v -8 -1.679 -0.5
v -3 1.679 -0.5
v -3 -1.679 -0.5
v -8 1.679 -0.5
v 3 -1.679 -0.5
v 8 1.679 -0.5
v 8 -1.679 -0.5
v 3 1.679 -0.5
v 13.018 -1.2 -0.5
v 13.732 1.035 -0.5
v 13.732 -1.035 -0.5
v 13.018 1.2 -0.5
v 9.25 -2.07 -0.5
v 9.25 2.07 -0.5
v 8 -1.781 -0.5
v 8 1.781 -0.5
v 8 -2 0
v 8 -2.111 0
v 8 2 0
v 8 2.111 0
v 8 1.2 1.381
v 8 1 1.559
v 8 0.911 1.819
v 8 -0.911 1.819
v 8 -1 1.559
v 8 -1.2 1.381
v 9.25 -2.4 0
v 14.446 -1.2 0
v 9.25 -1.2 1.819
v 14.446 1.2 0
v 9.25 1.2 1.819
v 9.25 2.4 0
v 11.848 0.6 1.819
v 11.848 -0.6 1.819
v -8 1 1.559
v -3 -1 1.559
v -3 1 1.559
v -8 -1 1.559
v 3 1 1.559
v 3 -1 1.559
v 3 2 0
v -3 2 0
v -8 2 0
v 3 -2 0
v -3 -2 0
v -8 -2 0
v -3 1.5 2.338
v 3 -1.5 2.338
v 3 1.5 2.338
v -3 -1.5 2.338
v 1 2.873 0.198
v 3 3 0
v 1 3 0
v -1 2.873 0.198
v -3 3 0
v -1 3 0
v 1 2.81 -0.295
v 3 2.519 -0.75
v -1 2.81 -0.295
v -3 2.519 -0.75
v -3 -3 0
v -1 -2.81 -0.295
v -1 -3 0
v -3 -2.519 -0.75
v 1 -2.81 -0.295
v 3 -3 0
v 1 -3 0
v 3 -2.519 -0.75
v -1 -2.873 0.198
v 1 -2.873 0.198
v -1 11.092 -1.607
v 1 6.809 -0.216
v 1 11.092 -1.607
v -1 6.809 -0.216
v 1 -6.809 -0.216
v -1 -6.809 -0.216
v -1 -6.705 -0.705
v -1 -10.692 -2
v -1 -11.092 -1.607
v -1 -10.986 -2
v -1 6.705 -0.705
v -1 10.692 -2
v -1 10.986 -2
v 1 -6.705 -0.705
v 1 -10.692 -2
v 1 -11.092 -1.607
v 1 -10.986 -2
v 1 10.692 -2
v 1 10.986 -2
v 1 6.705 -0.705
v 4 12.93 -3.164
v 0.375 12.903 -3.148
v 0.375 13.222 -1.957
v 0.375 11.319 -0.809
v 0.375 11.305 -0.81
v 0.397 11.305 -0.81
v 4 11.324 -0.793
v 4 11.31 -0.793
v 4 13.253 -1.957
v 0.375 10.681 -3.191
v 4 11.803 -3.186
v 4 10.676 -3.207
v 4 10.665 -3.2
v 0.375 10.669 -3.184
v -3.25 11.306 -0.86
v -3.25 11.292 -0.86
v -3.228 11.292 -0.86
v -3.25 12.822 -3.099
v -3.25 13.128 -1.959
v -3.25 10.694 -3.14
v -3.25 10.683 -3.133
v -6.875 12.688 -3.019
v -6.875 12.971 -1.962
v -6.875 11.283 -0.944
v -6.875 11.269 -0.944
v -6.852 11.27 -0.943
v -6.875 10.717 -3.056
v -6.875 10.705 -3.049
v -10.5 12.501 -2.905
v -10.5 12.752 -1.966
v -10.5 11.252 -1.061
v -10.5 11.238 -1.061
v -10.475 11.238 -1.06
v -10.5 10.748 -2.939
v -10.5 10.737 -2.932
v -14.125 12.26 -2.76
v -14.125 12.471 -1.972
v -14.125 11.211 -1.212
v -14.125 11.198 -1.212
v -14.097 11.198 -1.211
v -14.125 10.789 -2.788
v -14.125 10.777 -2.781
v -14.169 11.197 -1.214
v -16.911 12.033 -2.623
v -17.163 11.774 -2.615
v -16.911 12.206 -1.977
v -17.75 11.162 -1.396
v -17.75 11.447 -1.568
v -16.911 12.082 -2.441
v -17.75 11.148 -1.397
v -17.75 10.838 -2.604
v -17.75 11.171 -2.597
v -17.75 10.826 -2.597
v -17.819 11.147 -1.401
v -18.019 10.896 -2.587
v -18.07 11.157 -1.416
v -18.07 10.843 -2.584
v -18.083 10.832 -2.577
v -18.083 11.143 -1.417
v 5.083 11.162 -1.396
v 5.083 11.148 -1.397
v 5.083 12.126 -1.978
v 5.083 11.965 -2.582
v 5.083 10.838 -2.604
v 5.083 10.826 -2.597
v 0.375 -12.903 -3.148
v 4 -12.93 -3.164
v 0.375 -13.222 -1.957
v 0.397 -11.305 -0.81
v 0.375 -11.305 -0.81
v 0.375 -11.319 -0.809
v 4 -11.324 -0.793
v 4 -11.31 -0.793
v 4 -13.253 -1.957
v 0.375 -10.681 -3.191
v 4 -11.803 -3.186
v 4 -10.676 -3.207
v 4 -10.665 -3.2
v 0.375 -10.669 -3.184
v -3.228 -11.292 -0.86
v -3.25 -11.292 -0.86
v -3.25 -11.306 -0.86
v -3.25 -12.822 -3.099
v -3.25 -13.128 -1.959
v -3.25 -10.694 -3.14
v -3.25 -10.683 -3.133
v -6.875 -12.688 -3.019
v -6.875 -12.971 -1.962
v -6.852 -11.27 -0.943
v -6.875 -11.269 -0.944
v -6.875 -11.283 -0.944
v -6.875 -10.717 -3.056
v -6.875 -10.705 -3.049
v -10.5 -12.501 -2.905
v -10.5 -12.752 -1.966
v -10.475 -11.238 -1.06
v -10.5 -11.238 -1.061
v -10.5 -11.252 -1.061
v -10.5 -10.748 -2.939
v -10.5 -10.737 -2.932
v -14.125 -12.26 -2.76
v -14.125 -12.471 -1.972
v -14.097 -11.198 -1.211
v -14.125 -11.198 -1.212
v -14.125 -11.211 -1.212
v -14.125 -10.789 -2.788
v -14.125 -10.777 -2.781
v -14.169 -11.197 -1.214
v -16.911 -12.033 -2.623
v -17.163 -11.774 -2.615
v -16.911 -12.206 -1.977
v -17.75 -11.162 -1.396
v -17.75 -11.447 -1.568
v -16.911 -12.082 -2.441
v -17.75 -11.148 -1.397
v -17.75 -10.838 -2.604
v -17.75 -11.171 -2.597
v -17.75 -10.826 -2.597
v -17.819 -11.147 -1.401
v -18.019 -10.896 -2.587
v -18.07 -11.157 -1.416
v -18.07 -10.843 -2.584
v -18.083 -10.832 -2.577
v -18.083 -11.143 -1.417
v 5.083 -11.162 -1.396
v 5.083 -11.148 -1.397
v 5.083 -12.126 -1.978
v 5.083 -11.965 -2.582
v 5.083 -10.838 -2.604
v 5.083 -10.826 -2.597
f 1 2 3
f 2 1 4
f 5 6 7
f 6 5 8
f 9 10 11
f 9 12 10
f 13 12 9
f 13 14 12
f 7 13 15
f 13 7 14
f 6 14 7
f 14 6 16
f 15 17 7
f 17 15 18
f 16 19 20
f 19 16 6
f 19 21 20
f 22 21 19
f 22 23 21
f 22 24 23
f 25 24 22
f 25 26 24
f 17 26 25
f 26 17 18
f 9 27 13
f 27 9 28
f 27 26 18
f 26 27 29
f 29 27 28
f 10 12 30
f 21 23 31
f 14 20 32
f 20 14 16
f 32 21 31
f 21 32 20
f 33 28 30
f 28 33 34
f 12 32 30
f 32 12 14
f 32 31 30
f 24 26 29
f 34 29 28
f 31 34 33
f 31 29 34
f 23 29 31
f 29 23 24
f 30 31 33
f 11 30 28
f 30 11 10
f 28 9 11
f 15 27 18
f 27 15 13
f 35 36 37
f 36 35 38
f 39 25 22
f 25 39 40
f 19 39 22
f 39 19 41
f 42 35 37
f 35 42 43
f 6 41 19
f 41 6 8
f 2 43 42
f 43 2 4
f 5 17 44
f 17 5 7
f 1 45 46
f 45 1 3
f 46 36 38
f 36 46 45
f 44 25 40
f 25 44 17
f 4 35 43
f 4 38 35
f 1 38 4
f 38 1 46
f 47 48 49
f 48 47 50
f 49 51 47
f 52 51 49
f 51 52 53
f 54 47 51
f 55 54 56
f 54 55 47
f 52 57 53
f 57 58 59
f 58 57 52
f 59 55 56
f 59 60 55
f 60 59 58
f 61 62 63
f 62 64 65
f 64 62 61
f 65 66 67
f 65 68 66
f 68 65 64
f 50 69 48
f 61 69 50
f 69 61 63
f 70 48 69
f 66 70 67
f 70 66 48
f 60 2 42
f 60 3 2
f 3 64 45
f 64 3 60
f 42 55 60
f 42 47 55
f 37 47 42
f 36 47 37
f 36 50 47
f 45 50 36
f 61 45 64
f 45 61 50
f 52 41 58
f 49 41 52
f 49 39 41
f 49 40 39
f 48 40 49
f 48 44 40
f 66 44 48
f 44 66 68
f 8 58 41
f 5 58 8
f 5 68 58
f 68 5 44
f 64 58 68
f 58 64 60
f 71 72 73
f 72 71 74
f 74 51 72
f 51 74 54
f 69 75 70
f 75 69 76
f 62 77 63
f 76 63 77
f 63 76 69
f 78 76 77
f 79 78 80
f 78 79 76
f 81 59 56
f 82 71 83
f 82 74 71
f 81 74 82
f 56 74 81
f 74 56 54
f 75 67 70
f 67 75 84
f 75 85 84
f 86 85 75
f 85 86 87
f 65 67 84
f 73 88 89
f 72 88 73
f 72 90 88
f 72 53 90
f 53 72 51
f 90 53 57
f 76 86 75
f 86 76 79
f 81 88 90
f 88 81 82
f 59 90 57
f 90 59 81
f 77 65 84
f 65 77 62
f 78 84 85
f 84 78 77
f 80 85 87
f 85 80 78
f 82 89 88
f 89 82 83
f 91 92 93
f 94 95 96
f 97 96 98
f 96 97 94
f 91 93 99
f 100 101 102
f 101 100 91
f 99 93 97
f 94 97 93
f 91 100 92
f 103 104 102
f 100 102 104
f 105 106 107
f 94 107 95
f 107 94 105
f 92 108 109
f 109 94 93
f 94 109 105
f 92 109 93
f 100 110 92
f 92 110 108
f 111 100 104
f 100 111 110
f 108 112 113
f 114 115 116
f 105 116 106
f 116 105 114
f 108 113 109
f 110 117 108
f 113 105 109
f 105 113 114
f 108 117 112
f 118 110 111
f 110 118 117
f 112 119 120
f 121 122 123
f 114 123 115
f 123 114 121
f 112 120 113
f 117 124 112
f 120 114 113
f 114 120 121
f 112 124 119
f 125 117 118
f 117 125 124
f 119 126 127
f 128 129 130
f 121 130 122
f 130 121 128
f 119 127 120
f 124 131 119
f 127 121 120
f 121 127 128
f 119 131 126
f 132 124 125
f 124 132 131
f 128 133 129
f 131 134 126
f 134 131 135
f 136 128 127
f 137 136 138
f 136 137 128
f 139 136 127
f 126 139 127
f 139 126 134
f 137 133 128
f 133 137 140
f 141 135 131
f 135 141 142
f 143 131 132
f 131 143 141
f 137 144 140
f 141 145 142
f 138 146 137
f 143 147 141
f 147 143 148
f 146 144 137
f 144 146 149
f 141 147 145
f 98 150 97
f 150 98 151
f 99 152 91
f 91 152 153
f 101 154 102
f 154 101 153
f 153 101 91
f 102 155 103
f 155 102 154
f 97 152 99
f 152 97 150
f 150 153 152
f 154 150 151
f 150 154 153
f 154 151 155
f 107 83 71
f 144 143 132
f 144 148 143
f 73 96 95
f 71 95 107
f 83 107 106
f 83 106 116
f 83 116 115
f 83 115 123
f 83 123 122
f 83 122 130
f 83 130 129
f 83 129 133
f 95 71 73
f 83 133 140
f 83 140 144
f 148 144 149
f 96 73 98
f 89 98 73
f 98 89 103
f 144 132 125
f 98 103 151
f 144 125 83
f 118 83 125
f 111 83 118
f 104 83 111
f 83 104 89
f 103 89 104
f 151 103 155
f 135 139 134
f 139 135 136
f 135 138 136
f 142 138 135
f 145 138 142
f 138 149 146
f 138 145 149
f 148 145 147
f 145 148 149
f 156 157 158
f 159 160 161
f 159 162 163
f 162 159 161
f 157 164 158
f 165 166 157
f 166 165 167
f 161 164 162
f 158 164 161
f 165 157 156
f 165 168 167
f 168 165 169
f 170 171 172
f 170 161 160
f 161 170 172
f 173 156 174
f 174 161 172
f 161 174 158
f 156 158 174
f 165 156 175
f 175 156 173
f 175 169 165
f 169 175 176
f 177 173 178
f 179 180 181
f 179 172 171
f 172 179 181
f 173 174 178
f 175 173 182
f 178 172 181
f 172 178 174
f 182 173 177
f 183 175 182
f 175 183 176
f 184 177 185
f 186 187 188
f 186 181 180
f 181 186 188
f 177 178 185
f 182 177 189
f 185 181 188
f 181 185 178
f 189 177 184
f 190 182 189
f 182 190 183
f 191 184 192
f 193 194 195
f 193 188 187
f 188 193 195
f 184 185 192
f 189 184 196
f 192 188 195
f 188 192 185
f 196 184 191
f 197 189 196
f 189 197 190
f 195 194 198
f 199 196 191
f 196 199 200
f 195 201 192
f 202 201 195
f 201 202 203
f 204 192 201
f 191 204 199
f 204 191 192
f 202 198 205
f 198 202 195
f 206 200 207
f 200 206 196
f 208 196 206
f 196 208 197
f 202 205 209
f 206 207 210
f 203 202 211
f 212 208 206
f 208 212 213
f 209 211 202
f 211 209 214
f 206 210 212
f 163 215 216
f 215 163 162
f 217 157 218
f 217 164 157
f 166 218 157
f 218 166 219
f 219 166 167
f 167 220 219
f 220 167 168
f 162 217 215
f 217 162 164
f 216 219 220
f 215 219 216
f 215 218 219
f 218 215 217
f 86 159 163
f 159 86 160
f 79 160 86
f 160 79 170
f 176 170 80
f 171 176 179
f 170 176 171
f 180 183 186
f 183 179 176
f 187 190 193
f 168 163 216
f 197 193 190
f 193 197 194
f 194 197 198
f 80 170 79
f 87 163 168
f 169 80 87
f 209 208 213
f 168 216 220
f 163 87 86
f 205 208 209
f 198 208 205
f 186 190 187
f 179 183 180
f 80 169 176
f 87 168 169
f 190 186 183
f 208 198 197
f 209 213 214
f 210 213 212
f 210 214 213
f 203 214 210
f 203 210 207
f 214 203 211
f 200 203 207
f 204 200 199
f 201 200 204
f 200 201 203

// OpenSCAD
// file: ../lib/util.scad
fn1 = 32;
fn2 = 16;

module util_half_sphere(radius, fn=fn1) {
    difference() {
        sphere(radius, $fn=fn);
        translate([0,0,-(radius+radius/19)])
            cube(2*radius+radius/10, center=true);
    }
}

function gcd(a,b) = a == b ? a : a > b ? gcd(a-b, b) : gcd(a, b-a);

module util_saucer(length, width, height, fn=fn1) {
    rad = gcd(length,gcd(width,height));
    //rad = 10;
    scale([length/(2*rad), width/(2*rad), height/rad])
        util_half_sphere(rad, fn);
}

module util_half_cylinder(length, radius, inner_fn=fn2, outer_fn=fn1) {
    maxval = max(length, 2*radius);
    intersection() {
        difference() {
            rotate([0,90,0])
                translate([0,0,-(length/2 + length/20)])
                    cylinder(length+length/10, radius, radius, $fn=inner_fn);
            
            translate([0,0,(maxval/2 + maxval/19)])
                cube(maxval+maxval/10, center=true);
        }
        
        translate([0,0,-(radius+radius/20)])
            cylinder(radius + radius/10, length/2, length/2, $fn=outer_fn);
    }
}

module util_body(length, width, height, upper_height, fn=fn1) {
    rad = gcd(length, gcd(width, upper_height));
    
    scale(.995) scale([length/(2*rad), width/(2*rad), 1])
        util_half_cylinder(2*rad, height, outer_fn=fn);
}

module util_graded_cylinder(height, radius_start, radius_end, grades=1, fn=fn1) {
    height_grade = height / grades;
    radius_grade = (radius_start - radius_end) / (grades * grades);
    for (i = [0 : 1 : grades]) {
        translate([0,0,i*height_grade])
            cylinder(height_grade, 
                     radius_start - i*radius_grade * i,
                     radius_start - (i+1) * radius_grade * (i+1),
                     $fn = fn);
    }
}

module util_nacelle(length, width, height, curved=false, up=true, front_bulge=false) {
    rad = min(width, height/2);
    grads = curved ? 6 : 1;
    scale_factor = front_bulge ? 1.1 : 1;
    direction = up ? -1 : 1;
    difference() {
        scale([1, width/ (2*rad), height/rad])
            difference() {
                union() {
                    rotate([0,-90,0])
                        rotate(30)
                            util_graded_cylinder(length-rad, rad, rad/2, grads, 6);
                    scale(scale_factor) 
                        rotate([0,90,0]) rotate(90) sphere(rad, $fn=6);
                }
                
                translate([-length/2, 0, direction * (height/2 + height/19)])
                    cube([length+length, width+width, height+height/10], center=true);
            }
        
        translate([-length-(curved?length/3:0), 0, -length/3])
            rotate([0,-45,0])
                cube(length, center=true);
    }
}

module util_mirrored(v) {
    children();
    mirror(v) children();
}

module util_ring(outer, inner, height) {
    difference() {
        translate([0,0,-height/2])
            cylinder(height, outer, outer);
        translate([0,0,-(height/2 + height/19)])
            cylinder(height+height/10, inner, inner);
    }
}

module util_star(radius, thick, num, half=false) {
    angle = 360/num;
    offset = half? angle/2 : 0;
    for (i = [0: 1: num]) {
        rotate(i* angle + offset)
            translate([radius/2,0,0])
                cube([radius, thick, thick], center=true);
    }
}

module util_ring_star(radius, thick, num, inner, half=false) {
    outer=inner+thick;
    avg = (inner + outer)/2;
    union() {
        difference() {
            util_star(radius, thick, num, half);
            cylinder(2*thick, outer, outer, $fn=num, center=true);
        }
        util_ring(outer, inner, thick);
    }
}

module util_hangar_disk(height, lower, upper, num, fn=fn1) {
    difference() {
            cylinder(height, lower, upper, $fn=fn, center=true);
        difference() {
            scale([1,1,22])
                util_star(1.1*upper, height/20, num, half=true);
            scale(.95)
                cylinder(height, lower, upper, $fn=fn, center=true);
        }
    }
}

module util_hangar_form(length, width, height, num, inner=0) {
    l = 0.6* max(length, width);
    h = 2.5* height;
    thick = min(height/20,1);
    inner = inner == 0 ? l/3 : inner;
    difference() {
        children();
        scale([1,1,h/thick]) 
            util_ring_star(l, thick, num, inner, half=true);
    }
    scale(.95) children();
}

module util_nacelle_bar(span, height, width, thickness) {
    rad = (span*span/(8*height) + height/2);
    outer = rad + thickness/2;
    inner = rad - thickness/2;
    difference(){
        translate([0,0,outer])
            rotate([0,90,0])
                util_ring(outer, inner, width);
    
        translate([0,0,1.1*outer+height])
            cube(2.2*outer, center=true);
    }
}

module util_q_sphere(rad, quadrant, faces) {
    x_sign = quadrant == 1 ? 1 :
             quadrant == 2 ? -1 :
             quadrant == 3 ? -1 :
             quadrant == 4 ? 1 : 0;
    z_sign = quadrant == 1 ? 1 :
             quadrant == 2 ? 1 :
             quadrant == 3 ? -1 :
             quadrant == 4 ? -1 : 0;
    
    difference() {
        sphere(rad, $fn=faces);

        translate([x_sign*(-1.1*rad - .01),0,0])
        cube(2.2*rad, center=true);

        translate([0,0,z_sign*(-1.1*rad - .01)])
        cube(2.2*rad, center=true);
    }
}

module util_ovoid(front_rad, back_rad, width, upper_rad, lower_rad, faces=32) {
    half_width = width/2;
    largest=max(front_rad, back_rad, half_width, upper_rad, lower_rad);
    smallest=min(front_rad, back_rad, half_width, upper_rad, lower_rad);
    
    union() {
        scale([front_rad/smallest, half_width/smallest, upper_rad/smallest])
        util_q_sphere(smallest, 1, faces);
        
        scale([front_rad/smallest, half_width/smallest, lower_rad/smallest])
        util_q_sphere(smallest, 4, faces);
        
        scale([back_rad/smallest, half_width/smallest, lower_rad/smallest])
        util_q_sphere(smallest, 3, faces);
        
        scale([back_rad/smallest, half_width/smallest, upper_rad/smallest])
        util_q_sphere(smallest, 2, faces);
    }
}
// file: macs.scad
use <../lib/util.scad>;

module macs_pod_small() {
    difference() {
        scale([.5,.4,.35])
            rotate(90)
                sphere(6, $fn=6);
        macs_pod_diff();
    }
}

module macs_pod_diff() {
    translate([0,0,-(6+.5)])
        cube(12, center=true);

    translate([-(3+1.25),0,0])
        cube(6, center=true);
}

module macs_pod() {
    difference() {
        scale([1,.4,.35])
            rotate(90)
                sphere(6, $fn=6);
        macs_pod_diff();
    }
    
    //macs_pod_wing();
}

module macs_small_nacelle() {
    util_nacelle(7.5,1,1,curved=true, up=false);
}


module macs_pod_wing() {
    translate([-1,0,0])
        rotate([0,90,0])
            scale([.1,1,1])
                cylinder(2, 3.5, 2.75, $fn=6);
}

module macs_small_warp() {
    macs_corridor(4);

    translate([0,0,1.5])
        mirror([0,0,1])
            scale([1,1.2,0.8])
                util_nacelle_bar(7.5,2,2,.15);

    util_mirrored([0,1,0])
        translate([3,4.2,0])
            macs_small_nacelle();
    
    translate([0,0,1.5])
        rotate([0,90,0]) {
            translate([0,0,1.5]) sphere(.5, $fn=8);
            cylinder(3,.5,.5, center=true, $fn=8);
            translate([0,0,-1.5]) sphere(.5, $fn=8);
        }
}




module macs_extra_room() {
     macs_corridor(8);

     difference() {
         scale([1,1,.5])
            sphere(4, $fn=6);


        translate([0,0,-(6+.5)])
            cube(12, center=true);
    }
}

module macs_tactical_warp() {
    translate([0,0,0])
    macs_corridor(8);

    difference() {
        translate([0,0,-.5+1.2])
        cylinder(h=2.4,r1=8,r2=5,center=true,$fn=3);

        translate([4+3,0,0])
        cube(8, center=true);
    }

    util_mirrored([0,1,0])
    translate([-1.5,4,-.5+.6])
    scale([2.5,1,1])
    difference() {
        rotate(45/2)
        cylinder(h=1.2,r1=3,r2=2,center=true, $fn=8);
        
        translate([0,-3.5,0])
        rotate([-20,0,0])
        cube(7,center=true);
    }
}





module macs_corridor(length) {
    difference() {
        scale([1,1,.9])
            rotate([0,-90,0])
                rotate(90)
                    cylinder(length,2,2,$fn=6, center=true);
        translate([0,0,-(length*1.1/2 +.5)])
            cube(length*1.1, center=true);
    }
}

module macs_large_nacelle() {
    util_nacelle(23,2.5,2.5,curved=true,up=false);
}

module macs_large_warp(up=false) {
    macs_corridor(16);
    scale(1.5) macs_corridor(4);
    translate([0,0,.5]) {
        if(up) {
            util_nacelle_bar(25,2.5,2,.5);
        }
        else {
            mirror([0,0,1]) util_nacelle_bar(25,2.5,2,.5);
        };
    };
    
    if (up) {
        util_mirrored([0,1,0]) 
            translate([4,11,2.5]) 
                rotate([105,0,0])
                    macs_large_nacelle();
    } else {
        util_mirrored([0,1,0]) 
            translate([4,11,-2]) 
                rotate([75,0,0])
                    macs_large_nacelle();
    };
}



module macs_box() {
    scale([1,1.5,.5]) {
        rotate([0,90,0])
            rotate(180/8)
                cylinder(8,4,4, $fn=8, center=true);

        util_mirrored([1,0,0])
            translate([4,0,0])
                rotate([0,90,0])
                    rotate(180/8)
                        sphere(4, $fn=8);
    }
}



module macs_double_box() {
    union() {
        translate([-7,0,0]) macs_box();
        translate([7,0,0]) macs_box();
    }
}


module macs_disk(radius) {
    util_hangar_form(radius*2,radius*2,2,4,3) union () {
        translate([0,0,2]) cylinder(0.25, radius, radius-.5, center=true);
        cylinder(3.5, radius, radius, center=true);
        translate([0,0,-2]) cylinder(0.25, radius-.5, radius, center=true);
    }
    cylinder(4.5, 3,3, center=true);
}


module macs_cargo_element() {
    rotate([0,90,0]) scale([1,1,2]) macs_disk(6);
}

module macs_large_cargo() {
    translate([28,0,0]) macs_cargo_element();
    translate([20,0,0]) macs_cargo_element();
    translate([12,0,0]) macs_cargo_element();
    translate([4,0,0]) macs_cargo_element();
    translate([-4,0,0]) macs_cargo_element();
    translate([-12,0,0]) macs_cargo_element();
    translate([-20,0,0]) macs_cargo_element();
    translate([-28,0,0]) macs_cargo_element();

    translate([20,0,0]) cylinder(6.6,3,3);
    translate([-20,0,0]) cylinder(6.6,3,3);
}

    
// main file
use <macs.scad>;

module macs_fast_shuttle() {
    union() {
        translate([1.25 + 8, 0, 0]) macs_pod();
        macs_large_warp();
    }
}

macs_fast_shuttle();
